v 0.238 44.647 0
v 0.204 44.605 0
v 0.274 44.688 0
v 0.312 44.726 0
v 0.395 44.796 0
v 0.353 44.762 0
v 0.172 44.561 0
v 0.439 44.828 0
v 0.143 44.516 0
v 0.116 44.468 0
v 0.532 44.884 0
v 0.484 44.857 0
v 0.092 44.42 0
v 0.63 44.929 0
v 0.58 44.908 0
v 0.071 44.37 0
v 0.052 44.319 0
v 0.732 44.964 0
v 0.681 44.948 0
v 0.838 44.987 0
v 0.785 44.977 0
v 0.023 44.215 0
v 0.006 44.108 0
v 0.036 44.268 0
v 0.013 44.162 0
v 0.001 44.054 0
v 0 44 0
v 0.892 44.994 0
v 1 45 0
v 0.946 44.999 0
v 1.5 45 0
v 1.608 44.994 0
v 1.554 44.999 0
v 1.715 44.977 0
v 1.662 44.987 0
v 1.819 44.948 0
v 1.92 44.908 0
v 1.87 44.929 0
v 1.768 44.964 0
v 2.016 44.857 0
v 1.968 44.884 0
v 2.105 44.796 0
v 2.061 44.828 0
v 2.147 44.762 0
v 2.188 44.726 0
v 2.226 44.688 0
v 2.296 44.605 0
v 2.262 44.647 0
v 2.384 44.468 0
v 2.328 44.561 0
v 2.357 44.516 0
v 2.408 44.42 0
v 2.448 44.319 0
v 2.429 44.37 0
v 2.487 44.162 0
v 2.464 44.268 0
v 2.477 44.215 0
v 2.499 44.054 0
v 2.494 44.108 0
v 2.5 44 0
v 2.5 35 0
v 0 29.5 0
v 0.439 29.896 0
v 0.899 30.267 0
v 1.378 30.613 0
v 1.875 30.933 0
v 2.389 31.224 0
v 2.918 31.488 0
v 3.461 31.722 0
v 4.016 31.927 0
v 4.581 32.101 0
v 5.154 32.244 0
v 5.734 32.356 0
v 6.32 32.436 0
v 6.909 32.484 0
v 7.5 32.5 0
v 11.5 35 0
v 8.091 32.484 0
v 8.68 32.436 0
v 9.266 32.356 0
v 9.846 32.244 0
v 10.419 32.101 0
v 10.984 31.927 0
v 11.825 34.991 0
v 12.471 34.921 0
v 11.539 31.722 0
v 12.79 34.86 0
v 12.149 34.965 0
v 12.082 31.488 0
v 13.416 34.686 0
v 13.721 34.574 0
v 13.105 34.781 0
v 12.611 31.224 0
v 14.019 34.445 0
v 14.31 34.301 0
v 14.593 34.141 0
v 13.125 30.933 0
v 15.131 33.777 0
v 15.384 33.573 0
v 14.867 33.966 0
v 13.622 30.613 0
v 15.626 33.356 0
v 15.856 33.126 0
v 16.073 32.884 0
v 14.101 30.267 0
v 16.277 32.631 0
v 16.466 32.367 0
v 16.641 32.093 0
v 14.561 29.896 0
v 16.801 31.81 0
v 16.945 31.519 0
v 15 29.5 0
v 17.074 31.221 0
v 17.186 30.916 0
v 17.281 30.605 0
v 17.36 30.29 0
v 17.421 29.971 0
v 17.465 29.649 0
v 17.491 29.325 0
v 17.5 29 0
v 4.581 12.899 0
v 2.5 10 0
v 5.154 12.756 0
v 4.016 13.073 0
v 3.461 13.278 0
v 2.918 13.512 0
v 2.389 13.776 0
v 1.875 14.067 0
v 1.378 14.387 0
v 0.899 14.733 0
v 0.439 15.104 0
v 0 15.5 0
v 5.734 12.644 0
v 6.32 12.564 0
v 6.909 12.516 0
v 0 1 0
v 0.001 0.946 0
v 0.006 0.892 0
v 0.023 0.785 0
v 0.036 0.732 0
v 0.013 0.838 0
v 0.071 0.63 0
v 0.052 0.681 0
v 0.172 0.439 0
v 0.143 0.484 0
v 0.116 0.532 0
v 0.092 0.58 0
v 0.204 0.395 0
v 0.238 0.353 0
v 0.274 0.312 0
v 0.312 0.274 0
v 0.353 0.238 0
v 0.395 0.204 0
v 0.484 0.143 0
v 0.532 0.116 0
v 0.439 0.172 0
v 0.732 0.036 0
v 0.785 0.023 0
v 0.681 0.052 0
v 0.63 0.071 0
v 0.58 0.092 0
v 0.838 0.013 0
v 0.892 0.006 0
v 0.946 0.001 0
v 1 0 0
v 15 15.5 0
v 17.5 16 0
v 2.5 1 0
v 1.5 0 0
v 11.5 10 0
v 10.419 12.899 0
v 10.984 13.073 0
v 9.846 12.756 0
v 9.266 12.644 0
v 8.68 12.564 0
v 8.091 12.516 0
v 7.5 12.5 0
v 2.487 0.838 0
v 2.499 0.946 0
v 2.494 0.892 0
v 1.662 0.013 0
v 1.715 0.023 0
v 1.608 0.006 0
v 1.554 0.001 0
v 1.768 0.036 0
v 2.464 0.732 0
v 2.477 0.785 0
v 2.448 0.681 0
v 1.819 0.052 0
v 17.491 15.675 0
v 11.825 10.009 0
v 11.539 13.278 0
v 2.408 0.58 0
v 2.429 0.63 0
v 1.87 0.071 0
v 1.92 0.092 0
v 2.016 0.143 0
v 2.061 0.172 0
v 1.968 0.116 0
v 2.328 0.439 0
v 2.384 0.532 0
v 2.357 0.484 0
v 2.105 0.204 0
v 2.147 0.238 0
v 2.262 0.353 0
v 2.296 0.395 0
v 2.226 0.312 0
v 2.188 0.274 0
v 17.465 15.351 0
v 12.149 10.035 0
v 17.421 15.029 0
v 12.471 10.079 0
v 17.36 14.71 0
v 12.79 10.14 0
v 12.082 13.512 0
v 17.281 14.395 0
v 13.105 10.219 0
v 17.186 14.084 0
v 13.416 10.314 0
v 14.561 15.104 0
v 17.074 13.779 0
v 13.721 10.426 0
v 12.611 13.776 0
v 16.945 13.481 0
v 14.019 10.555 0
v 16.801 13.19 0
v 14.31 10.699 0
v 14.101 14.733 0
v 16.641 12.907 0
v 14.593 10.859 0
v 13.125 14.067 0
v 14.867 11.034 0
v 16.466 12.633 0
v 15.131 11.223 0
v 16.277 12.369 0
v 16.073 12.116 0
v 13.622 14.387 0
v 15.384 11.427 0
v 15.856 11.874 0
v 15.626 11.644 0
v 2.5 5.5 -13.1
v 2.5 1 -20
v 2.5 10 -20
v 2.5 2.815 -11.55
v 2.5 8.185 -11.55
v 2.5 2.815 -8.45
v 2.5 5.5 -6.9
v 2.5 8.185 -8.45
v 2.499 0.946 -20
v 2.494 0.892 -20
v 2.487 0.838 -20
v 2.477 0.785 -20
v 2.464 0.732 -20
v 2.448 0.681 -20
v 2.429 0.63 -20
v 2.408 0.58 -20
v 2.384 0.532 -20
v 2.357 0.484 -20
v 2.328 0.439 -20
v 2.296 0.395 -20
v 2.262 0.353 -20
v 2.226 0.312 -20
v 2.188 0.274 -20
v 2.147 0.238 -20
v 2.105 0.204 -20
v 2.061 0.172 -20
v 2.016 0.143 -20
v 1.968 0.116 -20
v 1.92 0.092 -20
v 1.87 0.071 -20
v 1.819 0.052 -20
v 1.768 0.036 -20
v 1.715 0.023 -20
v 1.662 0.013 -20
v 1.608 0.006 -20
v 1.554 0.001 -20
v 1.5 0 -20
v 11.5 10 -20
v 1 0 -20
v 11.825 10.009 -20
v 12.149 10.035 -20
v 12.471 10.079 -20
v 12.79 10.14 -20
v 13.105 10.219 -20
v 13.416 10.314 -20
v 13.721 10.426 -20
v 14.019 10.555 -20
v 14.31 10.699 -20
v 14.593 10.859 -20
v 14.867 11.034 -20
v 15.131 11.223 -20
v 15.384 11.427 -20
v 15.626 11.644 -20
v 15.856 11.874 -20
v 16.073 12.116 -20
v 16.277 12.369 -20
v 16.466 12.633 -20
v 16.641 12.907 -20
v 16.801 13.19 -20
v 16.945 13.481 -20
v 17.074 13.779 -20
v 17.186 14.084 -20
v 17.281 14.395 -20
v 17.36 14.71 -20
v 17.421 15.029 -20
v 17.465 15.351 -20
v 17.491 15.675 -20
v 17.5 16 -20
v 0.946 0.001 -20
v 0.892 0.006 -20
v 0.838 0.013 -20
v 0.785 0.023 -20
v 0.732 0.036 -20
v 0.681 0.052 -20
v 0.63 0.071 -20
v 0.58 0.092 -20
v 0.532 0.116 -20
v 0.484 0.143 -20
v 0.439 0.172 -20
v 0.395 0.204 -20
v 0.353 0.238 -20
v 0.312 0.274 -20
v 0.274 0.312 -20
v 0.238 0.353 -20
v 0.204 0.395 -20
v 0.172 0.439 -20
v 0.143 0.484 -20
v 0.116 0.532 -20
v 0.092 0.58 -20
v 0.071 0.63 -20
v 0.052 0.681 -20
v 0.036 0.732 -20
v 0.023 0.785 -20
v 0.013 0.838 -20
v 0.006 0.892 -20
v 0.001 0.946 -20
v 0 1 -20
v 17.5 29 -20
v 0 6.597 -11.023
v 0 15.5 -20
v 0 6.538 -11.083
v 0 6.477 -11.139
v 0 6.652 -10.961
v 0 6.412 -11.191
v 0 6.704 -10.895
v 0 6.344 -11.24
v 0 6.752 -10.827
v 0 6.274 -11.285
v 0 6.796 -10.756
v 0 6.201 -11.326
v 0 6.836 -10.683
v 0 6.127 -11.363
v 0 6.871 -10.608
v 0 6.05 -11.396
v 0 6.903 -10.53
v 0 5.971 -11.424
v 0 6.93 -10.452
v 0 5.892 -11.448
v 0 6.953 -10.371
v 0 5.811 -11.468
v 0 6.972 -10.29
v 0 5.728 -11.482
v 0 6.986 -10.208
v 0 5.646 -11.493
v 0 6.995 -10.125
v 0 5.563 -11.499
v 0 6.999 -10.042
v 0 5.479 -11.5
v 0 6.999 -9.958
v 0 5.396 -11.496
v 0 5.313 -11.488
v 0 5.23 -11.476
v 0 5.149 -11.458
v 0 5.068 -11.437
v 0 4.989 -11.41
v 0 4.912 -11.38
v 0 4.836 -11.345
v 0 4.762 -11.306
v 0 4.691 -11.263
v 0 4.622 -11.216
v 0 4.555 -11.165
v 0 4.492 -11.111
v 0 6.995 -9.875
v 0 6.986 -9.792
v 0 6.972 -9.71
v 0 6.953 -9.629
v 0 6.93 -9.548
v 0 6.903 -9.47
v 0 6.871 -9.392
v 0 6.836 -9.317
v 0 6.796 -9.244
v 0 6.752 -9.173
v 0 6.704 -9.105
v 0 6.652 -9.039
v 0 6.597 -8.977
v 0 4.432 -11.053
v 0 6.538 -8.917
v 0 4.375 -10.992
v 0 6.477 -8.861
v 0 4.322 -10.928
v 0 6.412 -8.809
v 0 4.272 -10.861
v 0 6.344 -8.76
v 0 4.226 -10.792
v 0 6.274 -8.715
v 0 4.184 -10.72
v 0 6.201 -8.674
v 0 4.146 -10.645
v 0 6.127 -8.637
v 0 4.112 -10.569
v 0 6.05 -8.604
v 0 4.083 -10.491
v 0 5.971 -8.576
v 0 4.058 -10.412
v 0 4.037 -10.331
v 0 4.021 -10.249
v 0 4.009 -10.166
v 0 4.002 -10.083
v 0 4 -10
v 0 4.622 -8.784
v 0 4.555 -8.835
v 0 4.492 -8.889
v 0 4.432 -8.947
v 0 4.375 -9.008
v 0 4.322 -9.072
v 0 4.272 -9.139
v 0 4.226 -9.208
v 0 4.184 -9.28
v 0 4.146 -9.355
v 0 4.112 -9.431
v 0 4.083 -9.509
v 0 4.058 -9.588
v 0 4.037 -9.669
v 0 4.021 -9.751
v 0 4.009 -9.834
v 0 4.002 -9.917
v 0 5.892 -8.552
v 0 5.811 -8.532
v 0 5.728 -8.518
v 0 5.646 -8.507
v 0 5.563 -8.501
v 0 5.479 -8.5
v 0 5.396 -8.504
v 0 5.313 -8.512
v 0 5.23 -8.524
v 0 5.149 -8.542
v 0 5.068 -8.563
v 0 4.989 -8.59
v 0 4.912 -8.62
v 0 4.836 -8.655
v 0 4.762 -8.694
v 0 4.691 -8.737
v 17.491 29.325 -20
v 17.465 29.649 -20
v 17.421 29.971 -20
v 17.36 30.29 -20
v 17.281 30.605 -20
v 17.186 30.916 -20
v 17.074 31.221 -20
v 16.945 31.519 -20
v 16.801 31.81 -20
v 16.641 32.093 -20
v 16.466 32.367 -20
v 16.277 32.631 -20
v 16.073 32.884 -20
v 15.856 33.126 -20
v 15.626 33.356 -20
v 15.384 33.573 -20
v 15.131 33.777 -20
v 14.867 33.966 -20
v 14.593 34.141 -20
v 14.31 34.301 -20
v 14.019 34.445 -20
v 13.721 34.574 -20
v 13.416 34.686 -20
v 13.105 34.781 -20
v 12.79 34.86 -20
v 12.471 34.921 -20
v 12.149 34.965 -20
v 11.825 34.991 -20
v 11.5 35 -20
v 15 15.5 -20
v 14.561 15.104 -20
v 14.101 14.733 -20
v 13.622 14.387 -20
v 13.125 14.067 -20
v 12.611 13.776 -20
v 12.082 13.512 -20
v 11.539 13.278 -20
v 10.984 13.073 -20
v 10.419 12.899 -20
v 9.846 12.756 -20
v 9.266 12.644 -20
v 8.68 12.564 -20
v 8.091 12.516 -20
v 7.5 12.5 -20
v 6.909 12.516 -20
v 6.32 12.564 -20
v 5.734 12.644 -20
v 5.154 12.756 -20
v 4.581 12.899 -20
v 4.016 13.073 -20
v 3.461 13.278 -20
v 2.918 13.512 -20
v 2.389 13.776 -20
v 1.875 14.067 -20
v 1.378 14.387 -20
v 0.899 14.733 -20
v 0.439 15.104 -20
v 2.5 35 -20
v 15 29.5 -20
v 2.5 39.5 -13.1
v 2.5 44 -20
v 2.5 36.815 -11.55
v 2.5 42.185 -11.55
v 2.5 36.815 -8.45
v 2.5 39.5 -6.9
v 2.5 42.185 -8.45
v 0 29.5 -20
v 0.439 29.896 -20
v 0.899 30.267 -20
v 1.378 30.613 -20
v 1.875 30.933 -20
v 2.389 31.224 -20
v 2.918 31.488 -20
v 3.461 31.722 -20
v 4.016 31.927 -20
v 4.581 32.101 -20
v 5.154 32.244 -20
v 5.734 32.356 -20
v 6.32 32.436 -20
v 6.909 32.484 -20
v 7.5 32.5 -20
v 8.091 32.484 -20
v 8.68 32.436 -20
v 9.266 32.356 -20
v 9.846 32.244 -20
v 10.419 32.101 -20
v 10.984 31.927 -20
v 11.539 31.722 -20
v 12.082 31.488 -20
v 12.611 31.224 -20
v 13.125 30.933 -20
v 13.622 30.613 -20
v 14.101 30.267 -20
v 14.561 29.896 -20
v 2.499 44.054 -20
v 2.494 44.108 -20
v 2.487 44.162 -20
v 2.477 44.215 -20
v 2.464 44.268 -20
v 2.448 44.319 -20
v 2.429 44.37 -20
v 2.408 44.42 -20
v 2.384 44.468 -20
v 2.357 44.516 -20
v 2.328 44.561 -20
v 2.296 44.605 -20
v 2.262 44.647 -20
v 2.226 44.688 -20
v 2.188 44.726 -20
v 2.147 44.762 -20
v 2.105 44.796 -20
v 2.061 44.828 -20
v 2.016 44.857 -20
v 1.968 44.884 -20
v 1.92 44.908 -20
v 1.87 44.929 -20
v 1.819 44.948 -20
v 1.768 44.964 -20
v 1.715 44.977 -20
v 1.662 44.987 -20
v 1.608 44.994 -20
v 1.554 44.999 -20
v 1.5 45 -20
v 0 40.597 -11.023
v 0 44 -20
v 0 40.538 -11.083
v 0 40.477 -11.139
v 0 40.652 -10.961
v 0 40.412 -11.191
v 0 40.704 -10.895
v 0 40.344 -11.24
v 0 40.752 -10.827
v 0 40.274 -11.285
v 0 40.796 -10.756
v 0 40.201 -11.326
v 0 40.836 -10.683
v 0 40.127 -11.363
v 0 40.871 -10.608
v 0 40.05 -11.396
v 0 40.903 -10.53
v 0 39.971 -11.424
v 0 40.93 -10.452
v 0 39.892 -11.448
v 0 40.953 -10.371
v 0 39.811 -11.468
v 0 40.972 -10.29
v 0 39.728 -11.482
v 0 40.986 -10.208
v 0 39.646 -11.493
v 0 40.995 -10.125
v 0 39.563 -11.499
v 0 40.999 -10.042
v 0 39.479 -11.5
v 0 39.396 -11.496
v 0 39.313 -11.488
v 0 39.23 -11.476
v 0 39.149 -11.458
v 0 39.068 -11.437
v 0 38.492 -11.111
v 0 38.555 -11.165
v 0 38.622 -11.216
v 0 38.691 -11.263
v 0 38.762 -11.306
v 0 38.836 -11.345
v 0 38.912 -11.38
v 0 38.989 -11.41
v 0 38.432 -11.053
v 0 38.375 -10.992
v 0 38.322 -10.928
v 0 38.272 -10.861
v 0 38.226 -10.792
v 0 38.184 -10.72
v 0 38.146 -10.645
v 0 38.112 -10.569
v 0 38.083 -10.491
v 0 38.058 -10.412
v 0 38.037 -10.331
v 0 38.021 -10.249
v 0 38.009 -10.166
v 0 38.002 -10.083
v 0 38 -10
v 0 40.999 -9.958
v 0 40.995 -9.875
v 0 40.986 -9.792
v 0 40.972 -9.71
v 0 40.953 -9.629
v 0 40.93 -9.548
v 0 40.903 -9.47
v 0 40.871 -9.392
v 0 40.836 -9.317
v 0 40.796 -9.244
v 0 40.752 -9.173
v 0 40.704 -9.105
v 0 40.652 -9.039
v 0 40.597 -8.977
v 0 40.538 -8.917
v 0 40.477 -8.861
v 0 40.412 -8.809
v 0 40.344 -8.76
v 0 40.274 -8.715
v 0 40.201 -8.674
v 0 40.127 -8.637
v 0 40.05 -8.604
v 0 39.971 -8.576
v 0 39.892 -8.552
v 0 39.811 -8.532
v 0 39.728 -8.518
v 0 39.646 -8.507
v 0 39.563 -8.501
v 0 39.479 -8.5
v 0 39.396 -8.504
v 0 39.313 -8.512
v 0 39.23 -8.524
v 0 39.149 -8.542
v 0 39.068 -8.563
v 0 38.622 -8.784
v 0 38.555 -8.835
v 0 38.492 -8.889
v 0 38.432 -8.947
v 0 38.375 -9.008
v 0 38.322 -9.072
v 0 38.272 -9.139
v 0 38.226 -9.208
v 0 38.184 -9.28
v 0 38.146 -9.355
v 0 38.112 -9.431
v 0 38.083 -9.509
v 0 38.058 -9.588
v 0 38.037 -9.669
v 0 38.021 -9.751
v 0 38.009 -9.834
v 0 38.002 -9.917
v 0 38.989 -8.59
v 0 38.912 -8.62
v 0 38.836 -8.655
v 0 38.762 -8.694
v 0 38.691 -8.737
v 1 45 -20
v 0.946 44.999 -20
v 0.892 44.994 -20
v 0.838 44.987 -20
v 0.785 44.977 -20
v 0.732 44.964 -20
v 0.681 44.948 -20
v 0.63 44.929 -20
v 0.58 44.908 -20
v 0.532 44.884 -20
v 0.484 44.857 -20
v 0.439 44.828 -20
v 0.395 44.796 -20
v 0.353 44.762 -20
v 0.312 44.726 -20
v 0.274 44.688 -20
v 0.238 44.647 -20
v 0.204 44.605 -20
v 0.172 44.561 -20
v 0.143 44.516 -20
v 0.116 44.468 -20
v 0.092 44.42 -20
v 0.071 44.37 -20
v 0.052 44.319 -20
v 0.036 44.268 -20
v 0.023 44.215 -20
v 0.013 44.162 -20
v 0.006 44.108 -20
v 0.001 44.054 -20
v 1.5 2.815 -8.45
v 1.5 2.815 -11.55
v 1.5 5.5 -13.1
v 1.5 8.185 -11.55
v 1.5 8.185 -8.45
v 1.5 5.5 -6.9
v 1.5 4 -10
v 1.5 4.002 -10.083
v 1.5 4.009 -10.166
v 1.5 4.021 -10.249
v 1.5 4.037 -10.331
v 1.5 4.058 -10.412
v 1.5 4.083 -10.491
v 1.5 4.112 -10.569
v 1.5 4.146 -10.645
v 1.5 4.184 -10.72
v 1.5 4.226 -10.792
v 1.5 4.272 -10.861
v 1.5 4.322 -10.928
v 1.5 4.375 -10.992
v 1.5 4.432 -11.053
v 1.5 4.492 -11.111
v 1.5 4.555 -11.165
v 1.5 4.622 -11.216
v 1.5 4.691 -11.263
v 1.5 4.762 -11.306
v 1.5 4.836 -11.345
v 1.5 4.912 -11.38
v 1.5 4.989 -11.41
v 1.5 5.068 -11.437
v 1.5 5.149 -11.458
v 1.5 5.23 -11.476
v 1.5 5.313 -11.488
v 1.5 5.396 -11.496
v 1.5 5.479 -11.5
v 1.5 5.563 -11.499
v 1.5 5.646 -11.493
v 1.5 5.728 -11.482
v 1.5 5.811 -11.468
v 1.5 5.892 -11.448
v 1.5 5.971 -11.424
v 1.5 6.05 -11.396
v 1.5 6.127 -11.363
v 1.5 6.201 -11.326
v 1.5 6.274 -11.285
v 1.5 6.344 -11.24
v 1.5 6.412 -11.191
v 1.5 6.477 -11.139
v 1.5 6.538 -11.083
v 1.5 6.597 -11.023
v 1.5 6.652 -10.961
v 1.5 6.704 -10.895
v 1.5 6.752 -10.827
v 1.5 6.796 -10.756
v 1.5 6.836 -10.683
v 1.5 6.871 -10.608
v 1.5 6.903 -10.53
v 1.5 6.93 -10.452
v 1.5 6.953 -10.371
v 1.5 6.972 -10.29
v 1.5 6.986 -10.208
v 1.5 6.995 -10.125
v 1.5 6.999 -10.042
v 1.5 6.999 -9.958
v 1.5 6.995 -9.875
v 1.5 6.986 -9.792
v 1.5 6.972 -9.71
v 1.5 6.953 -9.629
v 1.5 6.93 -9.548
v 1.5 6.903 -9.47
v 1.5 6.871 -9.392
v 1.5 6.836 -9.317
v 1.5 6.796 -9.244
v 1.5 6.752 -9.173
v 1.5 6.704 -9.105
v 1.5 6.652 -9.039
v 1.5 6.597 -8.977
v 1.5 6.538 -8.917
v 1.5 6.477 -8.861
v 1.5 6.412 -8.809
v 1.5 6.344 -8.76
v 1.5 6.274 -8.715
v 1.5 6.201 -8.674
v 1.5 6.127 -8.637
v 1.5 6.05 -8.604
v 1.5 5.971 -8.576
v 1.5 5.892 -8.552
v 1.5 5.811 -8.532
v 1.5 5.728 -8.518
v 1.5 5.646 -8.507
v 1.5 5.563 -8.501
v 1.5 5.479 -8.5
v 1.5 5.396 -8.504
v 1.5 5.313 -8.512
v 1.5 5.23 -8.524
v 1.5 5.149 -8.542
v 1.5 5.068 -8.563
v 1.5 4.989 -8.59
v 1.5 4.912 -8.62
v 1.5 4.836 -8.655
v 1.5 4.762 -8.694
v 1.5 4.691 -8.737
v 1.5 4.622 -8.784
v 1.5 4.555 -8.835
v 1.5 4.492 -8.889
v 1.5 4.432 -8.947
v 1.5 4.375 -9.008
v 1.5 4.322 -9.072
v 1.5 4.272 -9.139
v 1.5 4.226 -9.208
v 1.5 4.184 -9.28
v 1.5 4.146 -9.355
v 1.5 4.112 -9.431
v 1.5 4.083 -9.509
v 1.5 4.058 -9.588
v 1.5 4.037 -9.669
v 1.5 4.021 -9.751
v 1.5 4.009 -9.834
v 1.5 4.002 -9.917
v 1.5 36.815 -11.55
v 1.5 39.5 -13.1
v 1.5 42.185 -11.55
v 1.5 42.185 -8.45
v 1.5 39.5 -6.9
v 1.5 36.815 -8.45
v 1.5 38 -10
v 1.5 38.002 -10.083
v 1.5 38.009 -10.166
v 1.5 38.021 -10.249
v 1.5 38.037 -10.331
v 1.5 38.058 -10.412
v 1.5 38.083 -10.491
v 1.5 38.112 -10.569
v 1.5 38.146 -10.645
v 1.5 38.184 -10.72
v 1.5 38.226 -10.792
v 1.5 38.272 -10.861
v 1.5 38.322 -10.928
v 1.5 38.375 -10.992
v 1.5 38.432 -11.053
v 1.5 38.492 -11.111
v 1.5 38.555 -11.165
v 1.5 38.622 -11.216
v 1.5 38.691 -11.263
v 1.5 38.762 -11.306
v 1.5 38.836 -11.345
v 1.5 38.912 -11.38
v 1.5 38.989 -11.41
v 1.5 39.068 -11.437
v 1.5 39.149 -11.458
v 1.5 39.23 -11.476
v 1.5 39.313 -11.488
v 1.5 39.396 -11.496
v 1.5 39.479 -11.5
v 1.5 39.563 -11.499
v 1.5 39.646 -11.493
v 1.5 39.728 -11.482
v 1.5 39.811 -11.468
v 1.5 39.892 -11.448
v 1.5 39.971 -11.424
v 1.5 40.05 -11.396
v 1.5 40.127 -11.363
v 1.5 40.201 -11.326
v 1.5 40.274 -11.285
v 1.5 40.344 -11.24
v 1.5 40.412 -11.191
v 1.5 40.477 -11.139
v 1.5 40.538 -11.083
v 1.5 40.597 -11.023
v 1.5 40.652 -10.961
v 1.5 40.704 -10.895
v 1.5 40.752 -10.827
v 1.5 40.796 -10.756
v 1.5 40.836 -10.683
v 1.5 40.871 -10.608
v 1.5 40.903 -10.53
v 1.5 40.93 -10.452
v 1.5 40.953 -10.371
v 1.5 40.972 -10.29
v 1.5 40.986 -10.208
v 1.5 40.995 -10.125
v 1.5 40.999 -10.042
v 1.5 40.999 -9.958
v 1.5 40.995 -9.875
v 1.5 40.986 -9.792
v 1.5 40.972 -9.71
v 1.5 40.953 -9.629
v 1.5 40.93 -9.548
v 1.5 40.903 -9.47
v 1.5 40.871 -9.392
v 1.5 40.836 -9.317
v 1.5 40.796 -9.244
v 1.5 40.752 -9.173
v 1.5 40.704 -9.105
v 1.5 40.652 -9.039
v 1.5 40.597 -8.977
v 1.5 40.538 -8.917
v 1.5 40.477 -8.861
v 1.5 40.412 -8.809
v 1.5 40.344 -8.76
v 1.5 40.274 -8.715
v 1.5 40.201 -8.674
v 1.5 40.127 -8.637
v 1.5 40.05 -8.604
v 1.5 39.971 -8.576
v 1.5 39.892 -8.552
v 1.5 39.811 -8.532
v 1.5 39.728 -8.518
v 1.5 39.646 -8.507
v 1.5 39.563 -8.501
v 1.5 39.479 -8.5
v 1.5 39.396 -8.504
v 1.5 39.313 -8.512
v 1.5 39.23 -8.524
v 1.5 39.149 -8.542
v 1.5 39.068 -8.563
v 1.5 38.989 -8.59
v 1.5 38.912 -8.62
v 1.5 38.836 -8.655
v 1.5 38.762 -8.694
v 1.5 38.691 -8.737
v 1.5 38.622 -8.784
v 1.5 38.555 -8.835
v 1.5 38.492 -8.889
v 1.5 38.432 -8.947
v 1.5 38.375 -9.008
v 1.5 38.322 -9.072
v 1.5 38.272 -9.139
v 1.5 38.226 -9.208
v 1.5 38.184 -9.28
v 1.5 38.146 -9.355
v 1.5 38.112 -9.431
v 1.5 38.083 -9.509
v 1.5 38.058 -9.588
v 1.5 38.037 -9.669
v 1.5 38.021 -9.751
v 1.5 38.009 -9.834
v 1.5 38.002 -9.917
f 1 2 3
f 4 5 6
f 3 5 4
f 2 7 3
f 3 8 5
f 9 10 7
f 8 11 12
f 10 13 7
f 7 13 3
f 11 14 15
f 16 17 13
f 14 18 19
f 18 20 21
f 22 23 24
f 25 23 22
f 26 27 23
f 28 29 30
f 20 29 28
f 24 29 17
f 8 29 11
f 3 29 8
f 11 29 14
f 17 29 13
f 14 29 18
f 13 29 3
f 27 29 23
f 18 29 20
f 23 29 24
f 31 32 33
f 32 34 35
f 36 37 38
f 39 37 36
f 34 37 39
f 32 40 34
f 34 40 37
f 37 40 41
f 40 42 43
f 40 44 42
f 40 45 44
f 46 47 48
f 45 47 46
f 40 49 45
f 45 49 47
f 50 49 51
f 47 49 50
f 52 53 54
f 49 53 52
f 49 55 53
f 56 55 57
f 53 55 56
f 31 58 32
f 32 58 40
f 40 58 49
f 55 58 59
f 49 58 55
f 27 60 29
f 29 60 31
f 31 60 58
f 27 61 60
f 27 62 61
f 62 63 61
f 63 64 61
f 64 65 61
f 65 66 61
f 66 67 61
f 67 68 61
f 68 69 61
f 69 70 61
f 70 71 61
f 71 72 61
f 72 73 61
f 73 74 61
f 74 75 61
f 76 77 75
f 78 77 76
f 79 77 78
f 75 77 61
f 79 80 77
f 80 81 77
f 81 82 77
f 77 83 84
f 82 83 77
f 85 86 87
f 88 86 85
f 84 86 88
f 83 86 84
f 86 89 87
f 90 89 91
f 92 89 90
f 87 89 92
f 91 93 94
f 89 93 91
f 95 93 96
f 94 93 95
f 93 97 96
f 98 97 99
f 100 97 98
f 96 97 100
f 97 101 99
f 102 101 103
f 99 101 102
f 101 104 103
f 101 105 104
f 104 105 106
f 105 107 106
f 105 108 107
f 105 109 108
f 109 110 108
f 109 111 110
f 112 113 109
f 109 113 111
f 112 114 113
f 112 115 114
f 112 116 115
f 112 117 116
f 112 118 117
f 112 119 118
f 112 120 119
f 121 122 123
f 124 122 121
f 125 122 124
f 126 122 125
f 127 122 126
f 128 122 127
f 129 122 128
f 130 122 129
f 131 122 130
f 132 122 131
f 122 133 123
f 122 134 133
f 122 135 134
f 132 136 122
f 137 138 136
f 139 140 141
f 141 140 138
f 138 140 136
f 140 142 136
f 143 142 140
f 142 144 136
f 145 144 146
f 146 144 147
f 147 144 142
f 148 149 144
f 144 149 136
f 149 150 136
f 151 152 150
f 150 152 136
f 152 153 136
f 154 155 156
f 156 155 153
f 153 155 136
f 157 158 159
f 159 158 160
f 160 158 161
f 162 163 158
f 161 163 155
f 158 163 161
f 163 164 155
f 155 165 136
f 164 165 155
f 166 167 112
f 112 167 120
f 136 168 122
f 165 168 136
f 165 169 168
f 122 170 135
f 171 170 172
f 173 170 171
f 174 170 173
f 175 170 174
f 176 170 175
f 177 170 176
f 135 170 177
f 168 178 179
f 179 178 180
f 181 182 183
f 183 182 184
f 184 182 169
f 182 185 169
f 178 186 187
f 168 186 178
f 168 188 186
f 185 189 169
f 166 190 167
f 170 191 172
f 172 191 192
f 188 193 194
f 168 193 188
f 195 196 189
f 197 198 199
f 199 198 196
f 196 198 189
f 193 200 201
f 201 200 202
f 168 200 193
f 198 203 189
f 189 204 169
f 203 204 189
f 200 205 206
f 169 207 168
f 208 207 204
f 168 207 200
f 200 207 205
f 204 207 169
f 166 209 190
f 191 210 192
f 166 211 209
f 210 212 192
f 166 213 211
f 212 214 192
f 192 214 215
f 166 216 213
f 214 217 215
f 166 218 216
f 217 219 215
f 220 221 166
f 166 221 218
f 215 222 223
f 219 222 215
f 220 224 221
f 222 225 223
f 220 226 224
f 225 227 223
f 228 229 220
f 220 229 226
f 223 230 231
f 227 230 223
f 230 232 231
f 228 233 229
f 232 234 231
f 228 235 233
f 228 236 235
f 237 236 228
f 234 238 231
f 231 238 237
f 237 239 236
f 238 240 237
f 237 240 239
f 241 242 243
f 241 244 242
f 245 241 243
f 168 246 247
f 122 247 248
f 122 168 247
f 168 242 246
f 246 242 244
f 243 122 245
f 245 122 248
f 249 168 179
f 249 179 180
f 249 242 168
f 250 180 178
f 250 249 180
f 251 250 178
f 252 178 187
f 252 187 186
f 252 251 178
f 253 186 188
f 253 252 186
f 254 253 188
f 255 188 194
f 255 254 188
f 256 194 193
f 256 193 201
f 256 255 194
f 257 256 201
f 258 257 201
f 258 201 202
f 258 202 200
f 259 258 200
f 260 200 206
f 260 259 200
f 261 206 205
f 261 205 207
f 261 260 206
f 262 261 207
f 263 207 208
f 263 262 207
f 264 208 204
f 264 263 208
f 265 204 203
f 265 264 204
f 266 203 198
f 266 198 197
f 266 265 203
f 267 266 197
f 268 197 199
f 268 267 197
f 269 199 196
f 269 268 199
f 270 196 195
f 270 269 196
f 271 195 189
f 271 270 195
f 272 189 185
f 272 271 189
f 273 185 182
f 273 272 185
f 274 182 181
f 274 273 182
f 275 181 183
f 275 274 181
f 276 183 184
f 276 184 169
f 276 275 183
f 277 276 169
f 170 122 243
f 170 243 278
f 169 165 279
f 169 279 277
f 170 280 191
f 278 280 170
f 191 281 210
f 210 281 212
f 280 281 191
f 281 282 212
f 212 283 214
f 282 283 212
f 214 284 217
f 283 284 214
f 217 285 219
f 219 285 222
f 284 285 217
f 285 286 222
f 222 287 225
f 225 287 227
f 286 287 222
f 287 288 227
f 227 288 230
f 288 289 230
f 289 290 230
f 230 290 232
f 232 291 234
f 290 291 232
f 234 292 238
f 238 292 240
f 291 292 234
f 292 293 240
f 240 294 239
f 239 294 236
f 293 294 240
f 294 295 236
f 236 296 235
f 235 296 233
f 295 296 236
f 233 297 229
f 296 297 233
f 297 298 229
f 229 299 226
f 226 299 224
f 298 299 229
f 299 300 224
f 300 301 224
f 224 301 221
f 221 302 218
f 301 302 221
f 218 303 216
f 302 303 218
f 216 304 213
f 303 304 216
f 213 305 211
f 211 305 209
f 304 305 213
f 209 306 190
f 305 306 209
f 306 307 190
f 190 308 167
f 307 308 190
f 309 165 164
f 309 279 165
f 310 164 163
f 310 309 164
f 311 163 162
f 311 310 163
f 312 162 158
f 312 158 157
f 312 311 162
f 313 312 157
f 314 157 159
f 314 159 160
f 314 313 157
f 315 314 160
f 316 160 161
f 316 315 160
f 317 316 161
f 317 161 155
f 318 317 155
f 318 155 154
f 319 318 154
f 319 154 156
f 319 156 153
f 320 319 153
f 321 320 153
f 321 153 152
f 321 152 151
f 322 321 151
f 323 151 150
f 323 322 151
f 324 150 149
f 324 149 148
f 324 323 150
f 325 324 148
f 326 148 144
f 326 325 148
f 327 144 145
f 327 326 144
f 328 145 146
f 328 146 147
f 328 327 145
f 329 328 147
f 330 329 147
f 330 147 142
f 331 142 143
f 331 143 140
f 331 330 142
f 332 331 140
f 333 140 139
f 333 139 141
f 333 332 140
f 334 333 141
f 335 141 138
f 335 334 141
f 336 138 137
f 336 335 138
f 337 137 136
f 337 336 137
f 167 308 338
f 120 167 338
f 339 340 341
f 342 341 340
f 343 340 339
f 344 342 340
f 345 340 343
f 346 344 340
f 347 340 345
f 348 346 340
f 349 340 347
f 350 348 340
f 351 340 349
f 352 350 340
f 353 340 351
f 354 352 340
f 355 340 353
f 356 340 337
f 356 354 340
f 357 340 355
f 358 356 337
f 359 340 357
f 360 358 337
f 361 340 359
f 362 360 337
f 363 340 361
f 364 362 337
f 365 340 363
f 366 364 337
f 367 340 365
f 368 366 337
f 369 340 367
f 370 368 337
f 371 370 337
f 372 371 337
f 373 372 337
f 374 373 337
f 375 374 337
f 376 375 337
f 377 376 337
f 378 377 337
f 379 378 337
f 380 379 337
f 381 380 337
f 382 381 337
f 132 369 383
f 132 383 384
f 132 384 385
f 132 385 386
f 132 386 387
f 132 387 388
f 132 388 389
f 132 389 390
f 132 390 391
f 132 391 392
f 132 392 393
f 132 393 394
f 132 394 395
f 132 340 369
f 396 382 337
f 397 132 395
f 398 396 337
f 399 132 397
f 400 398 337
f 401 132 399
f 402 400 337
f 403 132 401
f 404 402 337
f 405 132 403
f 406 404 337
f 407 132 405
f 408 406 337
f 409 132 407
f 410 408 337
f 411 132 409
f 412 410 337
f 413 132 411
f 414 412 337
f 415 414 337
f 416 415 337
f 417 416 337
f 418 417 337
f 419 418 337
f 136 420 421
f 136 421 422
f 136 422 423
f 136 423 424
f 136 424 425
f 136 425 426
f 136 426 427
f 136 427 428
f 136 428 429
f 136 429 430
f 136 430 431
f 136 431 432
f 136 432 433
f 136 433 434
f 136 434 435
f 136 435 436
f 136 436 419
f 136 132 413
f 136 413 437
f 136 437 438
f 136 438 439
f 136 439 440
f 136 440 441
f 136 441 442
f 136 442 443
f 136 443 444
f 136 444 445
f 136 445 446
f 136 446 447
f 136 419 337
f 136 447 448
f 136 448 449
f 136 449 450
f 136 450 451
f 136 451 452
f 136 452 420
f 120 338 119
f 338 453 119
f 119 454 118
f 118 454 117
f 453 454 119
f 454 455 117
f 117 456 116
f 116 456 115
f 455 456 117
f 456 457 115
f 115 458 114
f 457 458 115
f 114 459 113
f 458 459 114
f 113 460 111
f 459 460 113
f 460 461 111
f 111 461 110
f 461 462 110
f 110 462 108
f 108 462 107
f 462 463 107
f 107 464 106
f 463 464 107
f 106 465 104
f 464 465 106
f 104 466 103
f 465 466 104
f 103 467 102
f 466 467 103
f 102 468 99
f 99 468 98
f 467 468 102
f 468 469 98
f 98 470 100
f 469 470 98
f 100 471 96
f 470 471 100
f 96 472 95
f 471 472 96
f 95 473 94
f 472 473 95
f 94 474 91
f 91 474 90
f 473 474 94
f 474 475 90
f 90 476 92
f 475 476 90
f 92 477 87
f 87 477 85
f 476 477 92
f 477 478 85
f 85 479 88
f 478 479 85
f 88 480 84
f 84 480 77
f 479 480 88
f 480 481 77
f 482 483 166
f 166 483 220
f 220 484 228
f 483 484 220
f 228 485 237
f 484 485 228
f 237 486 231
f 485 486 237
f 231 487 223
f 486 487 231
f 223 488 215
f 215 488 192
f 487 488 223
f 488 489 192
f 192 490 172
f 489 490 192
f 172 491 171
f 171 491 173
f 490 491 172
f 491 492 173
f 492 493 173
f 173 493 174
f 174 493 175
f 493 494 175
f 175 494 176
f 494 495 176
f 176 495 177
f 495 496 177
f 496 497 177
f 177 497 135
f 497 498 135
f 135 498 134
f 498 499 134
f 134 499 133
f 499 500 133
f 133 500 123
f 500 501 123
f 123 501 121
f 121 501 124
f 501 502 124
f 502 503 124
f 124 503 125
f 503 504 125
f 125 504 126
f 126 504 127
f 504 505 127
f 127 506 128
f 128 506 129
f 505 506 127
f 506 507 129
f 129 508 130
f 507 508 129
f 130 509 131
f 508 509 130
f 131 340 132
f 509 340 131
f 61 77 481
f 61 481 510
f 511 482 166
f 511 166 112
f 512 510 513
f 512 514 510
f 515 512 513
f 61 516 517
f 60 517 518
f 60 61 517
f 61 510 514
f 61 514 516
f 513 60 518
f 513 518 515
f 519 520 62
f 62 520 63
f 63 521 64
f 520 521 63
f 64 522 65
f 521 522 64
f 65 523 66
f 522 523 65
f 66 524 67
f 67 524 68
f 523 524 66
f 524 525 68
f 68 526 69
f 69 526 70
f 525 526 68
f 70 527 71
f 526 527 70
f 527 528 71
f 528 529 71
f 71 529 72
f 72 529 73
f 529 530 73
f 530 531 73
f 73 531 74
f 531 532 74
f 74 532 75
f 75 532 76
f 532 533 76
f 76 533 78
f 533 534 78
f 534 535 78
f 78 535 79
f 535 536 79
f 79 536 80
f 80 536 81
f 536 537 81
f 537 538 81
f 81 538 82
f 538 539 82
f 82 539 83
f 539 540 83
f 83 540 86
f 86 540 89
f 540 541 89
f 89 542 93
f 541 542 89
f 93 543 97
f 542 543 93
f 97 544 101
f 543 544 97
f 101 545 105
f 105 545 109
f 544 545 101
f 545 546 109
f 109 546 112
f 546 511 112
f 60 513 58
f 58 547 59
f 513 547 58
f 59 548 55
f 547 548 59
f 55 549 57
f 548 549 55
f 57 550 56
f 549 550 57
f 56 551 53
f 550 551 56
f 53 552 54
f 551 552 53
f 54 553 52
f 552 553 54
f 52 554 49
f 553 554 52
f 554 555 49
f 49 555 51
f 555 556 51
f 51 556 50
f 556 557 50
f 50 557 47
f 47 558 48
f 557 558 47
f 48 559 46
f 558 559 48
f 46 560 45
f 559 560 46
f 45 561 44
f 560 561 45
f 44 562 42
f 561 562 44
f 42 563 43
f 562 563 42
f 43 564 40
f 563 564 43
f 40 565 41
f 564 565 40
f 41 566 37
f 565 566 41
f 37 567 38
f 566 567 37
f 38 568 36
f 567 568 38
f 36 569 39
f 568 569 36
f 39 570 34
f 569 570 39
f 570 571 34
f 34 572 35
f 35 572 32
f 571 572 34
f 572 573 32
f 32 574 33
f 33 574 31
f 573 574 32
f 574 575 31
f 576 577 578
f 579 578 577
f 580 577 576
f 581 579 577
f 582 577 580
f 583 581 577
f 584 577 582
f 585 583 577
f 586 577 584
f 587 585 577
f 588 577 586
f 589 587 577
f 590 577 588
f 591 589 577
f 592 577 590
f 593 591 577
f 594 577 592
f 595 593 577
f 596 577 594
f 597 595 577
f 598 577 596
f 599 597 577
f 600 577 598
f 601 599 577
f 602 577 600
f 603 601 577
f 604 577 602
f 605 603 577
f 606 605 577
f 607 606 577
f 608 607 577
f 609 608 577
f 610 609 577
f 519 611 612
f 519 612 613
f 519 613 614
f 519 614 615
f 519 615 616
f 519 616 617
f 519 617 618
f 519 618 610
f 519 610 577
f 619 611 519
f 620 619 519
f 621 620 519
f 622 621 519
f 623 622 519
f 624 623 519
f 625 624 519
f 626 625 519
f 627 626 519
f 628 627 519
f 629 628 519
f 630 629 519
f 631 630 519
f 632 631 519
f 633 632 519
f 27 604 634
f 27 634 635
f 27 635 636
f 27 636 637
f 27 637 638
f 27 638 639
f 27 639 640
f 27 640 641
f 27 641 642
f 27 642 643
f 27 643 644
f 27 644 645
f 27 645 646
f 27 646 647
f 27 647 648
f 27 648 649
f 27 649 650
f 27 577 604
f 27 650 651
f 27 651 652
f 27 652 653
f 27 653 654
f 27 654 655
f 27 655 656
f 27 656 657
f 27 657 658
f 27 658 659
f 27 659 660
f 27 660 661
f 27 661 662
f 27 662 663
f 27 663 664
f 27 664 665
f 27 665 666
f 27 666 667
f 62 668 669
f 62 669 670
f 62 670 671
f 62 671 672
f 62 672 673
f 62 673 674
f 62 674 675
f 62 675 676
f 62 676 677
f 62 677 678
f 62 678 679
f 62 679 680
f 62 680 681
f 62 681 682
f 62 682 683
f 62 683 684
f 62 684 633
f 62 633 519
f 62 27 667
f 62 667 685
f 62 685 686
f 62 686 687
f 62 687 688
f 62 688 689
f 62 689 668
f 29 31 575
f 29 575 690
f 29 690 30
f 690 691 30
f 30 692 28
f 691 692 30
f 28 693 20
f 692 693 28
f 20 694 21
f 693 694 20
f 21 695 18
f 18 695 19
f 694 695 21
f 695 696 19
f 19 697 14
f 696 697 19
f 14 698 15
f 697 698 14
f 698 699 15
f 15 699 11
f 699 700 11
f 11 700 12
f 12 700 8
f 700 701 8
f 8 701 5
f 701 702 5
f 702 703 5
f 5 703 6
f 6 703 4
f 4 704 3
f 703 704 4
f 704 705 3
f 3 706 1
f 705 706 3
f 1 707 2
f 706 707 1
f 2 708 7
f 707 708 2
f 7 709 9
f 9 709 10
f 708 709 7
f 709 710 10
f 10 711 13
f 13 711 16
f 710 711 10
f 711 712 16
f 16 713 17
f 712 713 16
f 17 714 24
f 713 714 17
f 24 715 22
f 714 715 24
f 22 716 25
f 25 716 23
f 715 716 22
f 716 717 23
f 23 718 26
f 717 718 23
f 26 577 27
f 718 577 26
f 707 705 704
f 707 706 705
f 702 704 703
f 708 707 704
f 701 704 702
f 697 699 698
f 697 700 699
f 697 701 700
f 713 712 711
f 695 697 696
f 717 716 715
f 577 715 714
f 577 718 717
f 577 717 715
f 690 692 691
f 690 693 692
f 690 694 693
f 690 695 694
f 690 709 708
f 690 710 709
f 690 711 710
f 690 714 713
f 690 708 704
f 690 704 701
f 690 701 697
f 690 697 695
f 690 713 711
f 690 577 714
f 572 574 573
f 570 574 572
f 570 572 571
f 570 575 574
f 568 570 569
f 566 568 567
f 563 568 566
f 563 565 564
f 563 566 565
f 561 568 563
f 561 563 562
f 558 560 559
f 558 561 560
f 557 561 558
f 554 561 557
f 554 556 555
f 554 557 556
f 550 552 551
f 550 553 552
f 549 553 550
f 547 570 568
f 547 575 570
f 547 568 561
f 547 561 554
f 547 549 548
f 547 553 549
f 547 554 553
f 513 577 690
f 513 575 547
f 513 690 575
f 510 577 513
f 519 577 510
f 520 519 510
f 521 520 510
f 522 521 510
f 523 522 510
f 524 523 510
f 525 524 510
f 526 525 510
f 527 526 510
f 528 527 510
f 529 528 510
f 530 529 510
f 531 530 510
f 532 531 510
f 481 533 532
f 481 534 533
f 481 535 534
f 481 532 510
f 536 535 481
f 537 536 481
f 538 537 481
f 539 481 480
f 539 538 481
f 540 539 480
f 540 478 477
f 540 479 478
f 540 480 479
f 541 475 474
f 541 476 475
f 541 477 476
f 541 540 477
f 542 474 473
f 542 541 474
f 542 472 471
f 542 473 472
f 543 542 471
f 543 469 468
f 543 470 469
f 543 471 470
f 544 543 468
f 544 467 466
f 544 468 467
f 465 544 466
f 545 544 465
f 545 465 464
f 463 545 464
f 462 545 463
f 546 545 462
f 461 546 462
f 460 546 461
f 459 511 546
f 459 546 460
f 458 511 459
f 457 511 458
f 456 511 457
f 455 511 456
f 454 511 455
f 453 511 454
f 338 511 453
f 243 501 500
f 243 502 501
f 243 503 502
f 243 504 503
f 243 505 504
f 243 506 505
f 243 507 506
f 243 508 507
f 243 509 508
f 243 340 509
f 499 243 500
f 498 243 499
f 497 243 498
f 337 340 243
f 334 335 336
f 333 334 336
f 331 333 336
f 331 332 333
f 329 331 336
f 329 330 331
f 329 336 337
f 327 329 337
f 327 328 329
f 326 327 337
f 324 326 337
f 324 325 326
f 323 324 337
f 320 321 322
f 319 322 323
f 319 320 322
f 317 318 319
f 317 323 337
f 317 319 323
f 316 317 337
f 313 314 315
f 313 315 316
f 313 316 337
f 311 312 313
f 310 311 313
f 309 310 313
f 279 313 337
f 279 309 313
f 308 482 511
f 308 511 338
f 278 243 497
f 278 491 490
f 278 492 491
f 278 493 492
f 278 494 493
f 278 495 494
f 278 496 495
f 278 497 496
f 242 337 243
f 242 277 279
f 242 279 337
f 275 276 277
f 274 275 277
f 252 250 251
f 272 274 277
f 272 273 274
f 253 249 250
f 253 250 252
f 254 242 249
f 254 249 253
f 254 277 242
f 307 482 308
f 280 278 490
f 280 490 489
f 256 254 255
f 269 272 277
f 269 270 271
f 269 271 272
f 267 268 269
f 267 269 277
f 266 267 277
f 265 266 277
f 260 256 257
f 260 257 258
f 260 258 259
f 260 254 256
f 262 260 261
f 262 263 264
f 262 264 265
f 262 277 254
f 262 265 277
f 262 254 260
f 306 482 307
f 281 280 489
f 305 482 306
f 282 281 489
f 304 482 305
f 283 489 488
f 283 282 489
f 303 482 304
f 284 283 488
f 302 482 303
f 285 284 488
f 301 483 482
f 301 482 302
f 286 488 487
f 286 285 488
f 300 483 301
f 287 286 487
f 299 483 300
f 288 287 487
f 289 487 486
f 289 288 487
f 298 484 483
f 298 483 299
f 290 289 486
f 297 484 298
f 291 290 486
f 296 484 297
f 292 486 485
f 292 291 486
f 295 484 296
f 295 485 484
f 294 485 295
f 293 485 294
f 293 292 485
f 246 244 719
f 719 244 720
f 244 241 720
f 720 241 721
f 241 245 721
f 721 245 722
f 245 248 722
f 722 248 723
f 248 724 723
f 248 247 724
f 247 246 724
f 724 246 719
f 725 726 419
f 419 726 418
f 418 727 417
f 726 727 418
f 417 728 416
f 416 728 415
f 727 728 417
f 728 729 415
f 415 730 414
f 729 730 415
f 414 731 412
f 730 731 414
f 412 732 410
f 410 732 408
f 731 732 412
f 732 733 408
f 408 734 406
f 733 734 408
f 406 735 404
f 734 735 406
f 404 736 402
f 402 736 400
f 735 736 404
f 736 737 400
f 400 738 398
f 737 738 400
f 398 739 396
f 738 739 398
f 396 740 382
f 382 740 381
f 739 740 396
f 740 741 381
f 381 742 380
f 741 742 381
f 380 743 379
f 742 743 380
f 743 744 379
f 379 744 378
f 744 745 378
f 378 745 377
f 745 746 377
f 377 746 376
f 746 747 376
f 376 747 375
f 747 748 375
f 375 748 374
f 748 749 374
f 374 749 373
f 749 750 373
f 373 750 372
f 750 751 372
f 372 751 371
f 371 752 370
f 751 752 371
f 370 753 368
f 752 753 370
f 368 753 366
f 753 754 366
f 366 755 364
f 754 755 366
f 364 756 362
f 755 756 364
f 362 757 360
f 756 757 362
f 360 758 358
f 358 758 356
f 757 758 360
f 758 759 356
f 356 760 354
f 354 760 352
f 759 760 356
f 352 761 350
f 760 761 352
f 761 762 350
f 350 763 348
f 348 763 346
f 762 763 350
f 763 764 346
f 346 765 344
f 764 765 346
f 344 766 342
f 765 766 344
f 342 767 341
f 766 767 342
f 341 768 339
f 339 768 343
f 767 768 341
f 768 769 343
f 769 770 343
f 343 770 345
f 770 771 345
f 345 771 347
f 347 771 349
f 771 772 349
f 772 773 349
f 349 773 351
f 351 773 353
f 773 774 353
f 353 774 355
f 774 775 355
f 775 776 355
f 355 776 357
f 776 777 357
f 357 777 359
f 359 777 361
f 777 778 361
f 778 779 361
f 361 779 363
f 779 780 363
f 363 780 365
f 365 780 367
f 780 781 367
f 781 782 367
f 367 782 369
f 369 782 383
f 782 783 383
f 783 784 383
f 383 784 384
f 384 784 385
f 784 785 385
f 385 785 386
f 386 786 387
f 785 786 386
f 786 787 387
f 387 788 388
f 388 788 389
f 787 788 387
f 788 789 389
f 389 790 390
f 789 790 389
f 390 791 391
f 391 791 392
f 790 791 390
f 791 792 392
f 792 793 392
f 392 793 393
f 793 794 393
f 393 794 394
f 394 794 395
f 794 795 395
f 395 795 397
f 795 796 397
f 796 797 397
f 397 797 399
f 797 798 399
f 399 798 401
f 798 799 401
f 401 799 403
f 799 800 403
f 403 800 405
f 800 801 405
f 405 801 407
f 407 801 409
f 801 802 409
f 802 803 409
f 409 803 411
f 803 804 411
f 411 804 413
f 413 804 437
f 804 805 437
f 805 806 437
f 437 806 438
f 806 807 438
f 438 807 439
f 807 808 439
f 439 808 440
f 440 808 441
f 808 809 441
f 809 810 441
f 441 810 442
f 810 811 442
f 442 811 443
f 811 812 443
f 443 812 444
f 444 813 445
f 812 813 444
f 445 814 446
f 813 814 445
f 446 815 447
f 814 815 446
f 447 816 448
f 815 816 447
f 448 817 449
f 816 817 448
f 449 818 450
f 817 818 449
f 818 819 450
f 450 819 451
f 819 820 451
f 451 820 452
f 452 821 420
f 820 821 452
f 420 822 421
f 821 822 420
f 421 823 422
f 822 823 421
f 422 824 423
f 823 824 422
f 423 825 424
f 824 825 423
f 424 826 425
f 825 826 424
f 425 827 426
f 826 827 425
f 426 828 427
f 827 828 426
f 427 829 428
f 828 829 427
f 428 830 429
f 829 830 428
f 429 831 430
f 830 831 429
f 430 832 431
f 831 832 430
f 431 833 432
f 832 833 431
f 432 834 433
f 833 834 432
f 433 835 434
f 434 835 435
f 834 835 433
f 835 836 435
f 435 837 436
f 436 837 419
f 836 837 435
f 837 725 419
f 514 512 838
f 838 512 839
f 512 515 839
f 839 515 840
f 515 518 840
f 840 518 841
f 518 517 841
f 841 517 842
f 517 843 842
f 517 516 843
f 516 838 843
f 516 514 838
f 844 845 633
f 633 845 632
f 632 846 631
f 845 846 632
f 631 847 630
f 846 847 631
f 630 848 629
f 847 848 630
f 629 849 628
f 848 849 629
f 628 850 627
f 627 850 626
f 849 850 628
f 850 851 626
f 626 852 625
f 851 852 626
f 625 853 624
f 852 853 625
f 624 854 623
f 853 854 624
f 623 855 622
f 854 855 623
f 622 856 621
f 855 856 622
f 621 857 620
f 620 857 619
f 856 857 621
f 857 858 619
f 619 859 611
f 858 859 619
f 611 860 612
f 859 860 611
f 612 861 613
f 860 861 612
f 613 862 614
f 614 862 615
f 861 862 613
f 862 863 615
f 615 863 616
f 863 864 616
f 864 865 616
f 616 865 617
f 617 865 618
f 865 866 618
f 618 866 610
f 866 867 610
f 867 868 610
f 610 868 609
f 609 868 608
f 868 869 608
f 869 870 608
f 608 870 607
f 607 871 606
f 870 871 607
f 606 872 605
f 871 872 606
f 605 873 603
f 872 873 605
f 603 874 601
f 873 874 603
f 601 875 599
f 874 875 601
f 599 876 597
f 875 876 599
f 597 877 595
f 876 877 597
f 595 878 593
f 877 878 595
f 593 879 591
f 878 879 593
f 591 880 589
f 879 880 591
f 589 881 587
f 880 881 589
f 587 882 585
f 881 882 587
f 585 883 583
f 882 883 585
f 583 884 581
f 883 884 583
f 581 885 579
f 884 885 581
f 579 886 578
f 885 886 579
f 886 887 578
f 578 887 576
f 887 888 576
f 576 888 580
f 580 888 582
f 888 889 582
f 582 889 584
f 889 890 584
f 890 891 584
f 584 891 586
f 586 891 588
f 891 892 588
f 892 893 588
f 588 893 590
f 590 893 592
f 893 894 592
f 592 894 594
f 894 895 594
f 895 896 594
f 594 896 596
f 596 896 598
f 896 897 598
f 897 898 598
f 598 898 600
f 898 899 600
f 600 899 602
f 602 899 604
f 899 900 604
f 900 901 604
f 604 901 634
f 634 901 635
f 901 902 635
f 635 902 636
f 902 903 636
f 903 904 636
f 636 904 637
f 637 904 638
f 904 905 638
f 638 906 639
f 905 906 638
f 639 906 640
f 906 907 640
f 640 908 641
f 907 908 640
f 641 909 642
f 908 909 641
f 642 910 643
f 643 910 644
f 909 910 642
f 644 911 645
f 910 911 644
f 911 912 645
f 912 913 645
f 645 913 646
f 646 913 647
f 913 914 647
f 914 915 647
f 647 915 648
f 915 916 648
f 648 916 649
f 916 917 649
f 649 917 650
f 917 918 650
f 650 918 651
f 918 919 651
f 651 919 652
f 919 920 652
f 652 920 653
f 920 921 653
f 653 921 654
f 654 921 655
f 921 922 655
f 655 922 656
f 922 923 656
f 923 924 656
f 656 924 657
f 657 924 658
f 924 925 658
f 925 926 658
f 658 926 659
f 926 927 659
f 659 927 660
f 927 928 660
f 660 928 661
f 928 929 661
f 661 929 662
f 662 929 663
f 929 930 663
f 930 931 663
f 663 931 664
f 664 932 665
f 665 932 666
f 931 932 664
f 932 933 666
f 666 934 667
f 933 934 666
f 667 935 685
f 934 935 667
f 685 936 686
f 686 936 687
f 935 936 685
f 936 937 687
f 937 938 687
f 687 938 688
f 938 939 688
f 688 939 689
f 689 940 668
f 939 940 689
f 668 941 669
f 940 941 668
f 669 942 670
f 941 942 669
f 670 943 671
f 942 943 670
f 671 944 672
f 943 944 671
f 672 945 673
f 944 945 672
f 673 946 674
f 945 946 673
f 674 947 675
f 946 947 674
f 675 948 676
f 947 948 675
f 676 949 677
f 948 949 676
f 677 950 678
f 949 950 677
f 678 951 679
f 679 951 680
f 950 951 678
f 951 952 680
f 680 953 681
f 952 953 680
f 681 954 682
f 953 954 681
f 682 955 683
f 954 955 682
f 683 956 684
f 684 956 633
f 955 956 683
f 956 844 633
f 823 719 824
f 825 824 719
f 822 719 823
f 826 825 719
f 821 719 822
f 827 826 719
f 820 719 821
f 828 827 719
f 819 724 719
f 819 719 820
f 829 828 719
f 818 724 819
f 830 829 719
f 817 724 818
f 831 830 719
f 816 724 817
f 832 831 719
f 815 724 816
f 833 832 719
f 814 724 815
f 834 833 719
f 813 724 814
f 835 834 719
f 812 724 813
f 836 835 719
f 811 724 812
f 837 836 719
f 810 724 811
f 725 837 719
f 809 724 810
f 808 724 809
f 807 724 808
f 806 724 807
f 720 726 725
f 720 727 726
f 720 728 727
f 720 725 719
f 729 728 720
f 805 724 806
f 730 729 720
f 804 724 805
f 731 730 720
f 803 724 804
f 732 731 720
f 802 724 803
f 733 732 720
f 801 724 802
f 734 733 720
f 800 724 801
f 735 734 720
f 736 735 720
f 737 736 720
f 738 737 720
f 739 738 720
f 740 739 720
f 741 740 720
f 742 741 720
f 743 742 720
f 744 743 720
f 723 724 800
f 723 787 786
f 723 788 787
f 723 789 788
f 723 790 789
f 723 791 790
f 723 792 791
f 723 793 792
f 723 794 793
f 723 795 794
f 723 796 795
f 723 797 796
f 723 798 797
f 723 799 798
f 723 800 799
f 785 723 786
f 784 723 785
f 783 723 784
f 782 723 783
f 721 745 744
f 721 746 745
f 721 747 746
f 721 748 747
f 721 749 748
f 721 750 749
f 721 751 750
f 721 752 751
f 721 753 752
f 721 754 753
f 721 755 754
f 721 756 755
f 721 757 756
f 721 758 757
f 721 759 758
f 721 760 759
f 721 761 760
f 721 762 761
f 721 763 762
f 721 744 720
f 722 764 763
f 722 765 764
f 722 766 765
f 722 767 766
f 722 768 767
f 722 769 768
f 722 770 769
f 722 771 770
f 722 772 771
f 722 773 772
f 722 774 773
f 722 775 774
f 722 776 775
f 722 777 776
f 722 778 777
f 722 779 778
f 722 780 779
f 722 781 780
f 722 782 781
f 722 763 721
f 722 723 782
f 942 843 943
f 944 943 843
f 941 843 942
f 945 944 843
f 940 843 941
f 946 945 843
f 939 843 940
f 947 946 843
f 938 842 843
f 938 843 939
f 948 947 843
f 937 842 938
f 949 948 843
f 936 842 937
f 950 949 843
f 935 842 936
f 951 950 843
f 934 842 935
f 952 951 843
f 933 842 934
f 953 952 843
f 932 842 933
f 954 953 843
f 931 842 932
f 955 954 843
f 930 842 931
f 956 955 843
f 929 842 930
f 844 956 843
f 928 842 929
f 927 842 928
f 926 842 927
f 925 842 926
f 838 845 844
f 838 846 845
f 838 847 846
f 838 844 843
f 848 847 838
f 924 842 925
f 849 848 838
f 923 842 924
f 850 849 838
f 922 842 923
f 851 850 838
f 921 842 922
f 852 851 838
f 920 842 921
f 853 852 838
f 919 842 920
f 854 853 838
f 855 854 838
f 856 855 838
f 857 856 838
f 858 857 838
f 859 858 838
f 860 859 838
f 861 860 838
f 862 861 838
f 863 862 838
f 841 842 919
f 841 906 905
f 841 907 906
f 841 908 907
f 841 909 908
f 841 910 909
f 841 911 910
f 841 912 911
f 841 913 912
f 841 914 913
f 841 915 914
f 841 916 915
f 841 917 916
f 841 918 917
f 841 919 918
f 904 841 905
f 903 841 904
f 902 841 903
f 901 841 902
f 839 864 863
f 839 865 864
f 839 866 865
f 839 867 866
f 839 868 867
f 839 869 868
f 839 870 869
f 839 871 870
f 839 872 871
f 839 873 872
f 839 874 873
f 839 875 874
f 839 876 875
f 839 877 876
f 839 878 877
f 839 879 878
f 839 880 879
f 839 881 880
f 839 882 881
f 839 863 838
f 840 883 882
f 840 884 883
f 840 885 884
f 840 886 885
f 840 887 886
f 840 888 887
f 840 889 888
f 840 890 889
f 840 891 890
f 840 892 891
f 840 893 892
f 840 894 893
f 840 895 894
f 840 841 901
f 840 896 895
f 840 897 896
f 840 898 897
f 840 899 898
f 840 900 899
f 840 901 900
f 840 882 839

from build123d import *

# Parameters (mm, degrees)
PAD_DEPTH            = 20
POCKET_DEPTH         = 20.001
FILLET_R             = 6
FILLET001_R          = 1
POCKET001_DEPTH      = 1
SKETCH003_R          = 1.5
POCKET002_DEPTH      = 1.501
BODY_PLACEMENT_ANGLE = 90


with BuildPart() as part:
    # Sketch → Pad (new body)
    with BuildSketch(Plane.YZ):
        Polygon((0, 0), (0, 2.5), (10, 2.5), (10, 17.5), (35, 17.5), (35, 2.5), (45, 2.5), (45, 0), align=None)
    extrude(amount=PAD_DEPTH)

    # Sketch001 (on Face10 of Pad) → Pocket (cut, through all)
    with BuildSketch(Plane.YZ.offset(20)):
        with BuildLine():
            Line((15.5, 15), (29.5, 15))
            ThreePointArc((29.5, 0), (32.5, 7.5), (29.5, 15))
            Line((15.5, 0), (29.5, 0))
            ThreePointArc((15.5, 15), (12.5, 7.5), (15.5, 0))
        make_face()
    extrude(amount=-POCKET_DEPTH, mode=Mode.SUBTRACT)

    # Fillet
    fillet_edges = [part.edges().sort_by_distance(p)[0] for p in [
        (10, 10, 17.5),
        (10, 35, 17.5),
    ]]
    fillet(fillet_edges, radius=FILLET_R)

    # Fillet001
    fillet001_edges = [part.edges().sort_by_distance(p)[0] for p in [
        (10, 0, 2.5),
        (10, 0, 0),
        (10, 45, 2.5),
        (10, 45, 0),
    ]]
    fillet(fillet001_edges, radius=FILLET001_R)

    # Sketch002 (on Face2 of Fillet001) → Pocket001 (cut)
    with BuildSketch(Plane(origin=(0, 0, 2.5), x_dir=(0, -1, 0), z_dir=(0, 0, 1))):
        Polygon((-36.815321, 11.55), (-39.5, 13.1), (-42.184679, 11.55), (-42.184679, 8.45), (-39.5, 6.9), (-36.815321, 8.45), align=None)
        Polygon((-2.815321, 8.45), (-2.815321, 11.55), (-5.5, 13.1), (-8.184679, 11.55), (-8.184679, 8.45), (-5.5, 6.9), align=None)
    extrude(amount=-POCKET001_DEPTH, mode=Mode.SUBTRACT)

    # Sketch003 (on Face33 of Pocket001) → Pocket002 (cut, through all)
    with BuildSketch(Plane(origin=(0, 0, 1.5), x_dir=(0, -1, 0), z_dir=(0, 0, 1))):
        with Locations((-39.5, 10)):
            Circle(SKETCH003_R)
        with Locations((-5.5, 10)):
            Circle(SKETCH003_R)
    extrude(amount=-POCKET002_DEPTH, mode=Mode.SUBTRACT)


with BuildPart() as part_1:
    # Body placement: moved
    add(part.part.rotate(Axis((0, 0, 0), (0, 1, 0)), BODY_PLACEMENT_ANGLE))


solid = part_1.part
